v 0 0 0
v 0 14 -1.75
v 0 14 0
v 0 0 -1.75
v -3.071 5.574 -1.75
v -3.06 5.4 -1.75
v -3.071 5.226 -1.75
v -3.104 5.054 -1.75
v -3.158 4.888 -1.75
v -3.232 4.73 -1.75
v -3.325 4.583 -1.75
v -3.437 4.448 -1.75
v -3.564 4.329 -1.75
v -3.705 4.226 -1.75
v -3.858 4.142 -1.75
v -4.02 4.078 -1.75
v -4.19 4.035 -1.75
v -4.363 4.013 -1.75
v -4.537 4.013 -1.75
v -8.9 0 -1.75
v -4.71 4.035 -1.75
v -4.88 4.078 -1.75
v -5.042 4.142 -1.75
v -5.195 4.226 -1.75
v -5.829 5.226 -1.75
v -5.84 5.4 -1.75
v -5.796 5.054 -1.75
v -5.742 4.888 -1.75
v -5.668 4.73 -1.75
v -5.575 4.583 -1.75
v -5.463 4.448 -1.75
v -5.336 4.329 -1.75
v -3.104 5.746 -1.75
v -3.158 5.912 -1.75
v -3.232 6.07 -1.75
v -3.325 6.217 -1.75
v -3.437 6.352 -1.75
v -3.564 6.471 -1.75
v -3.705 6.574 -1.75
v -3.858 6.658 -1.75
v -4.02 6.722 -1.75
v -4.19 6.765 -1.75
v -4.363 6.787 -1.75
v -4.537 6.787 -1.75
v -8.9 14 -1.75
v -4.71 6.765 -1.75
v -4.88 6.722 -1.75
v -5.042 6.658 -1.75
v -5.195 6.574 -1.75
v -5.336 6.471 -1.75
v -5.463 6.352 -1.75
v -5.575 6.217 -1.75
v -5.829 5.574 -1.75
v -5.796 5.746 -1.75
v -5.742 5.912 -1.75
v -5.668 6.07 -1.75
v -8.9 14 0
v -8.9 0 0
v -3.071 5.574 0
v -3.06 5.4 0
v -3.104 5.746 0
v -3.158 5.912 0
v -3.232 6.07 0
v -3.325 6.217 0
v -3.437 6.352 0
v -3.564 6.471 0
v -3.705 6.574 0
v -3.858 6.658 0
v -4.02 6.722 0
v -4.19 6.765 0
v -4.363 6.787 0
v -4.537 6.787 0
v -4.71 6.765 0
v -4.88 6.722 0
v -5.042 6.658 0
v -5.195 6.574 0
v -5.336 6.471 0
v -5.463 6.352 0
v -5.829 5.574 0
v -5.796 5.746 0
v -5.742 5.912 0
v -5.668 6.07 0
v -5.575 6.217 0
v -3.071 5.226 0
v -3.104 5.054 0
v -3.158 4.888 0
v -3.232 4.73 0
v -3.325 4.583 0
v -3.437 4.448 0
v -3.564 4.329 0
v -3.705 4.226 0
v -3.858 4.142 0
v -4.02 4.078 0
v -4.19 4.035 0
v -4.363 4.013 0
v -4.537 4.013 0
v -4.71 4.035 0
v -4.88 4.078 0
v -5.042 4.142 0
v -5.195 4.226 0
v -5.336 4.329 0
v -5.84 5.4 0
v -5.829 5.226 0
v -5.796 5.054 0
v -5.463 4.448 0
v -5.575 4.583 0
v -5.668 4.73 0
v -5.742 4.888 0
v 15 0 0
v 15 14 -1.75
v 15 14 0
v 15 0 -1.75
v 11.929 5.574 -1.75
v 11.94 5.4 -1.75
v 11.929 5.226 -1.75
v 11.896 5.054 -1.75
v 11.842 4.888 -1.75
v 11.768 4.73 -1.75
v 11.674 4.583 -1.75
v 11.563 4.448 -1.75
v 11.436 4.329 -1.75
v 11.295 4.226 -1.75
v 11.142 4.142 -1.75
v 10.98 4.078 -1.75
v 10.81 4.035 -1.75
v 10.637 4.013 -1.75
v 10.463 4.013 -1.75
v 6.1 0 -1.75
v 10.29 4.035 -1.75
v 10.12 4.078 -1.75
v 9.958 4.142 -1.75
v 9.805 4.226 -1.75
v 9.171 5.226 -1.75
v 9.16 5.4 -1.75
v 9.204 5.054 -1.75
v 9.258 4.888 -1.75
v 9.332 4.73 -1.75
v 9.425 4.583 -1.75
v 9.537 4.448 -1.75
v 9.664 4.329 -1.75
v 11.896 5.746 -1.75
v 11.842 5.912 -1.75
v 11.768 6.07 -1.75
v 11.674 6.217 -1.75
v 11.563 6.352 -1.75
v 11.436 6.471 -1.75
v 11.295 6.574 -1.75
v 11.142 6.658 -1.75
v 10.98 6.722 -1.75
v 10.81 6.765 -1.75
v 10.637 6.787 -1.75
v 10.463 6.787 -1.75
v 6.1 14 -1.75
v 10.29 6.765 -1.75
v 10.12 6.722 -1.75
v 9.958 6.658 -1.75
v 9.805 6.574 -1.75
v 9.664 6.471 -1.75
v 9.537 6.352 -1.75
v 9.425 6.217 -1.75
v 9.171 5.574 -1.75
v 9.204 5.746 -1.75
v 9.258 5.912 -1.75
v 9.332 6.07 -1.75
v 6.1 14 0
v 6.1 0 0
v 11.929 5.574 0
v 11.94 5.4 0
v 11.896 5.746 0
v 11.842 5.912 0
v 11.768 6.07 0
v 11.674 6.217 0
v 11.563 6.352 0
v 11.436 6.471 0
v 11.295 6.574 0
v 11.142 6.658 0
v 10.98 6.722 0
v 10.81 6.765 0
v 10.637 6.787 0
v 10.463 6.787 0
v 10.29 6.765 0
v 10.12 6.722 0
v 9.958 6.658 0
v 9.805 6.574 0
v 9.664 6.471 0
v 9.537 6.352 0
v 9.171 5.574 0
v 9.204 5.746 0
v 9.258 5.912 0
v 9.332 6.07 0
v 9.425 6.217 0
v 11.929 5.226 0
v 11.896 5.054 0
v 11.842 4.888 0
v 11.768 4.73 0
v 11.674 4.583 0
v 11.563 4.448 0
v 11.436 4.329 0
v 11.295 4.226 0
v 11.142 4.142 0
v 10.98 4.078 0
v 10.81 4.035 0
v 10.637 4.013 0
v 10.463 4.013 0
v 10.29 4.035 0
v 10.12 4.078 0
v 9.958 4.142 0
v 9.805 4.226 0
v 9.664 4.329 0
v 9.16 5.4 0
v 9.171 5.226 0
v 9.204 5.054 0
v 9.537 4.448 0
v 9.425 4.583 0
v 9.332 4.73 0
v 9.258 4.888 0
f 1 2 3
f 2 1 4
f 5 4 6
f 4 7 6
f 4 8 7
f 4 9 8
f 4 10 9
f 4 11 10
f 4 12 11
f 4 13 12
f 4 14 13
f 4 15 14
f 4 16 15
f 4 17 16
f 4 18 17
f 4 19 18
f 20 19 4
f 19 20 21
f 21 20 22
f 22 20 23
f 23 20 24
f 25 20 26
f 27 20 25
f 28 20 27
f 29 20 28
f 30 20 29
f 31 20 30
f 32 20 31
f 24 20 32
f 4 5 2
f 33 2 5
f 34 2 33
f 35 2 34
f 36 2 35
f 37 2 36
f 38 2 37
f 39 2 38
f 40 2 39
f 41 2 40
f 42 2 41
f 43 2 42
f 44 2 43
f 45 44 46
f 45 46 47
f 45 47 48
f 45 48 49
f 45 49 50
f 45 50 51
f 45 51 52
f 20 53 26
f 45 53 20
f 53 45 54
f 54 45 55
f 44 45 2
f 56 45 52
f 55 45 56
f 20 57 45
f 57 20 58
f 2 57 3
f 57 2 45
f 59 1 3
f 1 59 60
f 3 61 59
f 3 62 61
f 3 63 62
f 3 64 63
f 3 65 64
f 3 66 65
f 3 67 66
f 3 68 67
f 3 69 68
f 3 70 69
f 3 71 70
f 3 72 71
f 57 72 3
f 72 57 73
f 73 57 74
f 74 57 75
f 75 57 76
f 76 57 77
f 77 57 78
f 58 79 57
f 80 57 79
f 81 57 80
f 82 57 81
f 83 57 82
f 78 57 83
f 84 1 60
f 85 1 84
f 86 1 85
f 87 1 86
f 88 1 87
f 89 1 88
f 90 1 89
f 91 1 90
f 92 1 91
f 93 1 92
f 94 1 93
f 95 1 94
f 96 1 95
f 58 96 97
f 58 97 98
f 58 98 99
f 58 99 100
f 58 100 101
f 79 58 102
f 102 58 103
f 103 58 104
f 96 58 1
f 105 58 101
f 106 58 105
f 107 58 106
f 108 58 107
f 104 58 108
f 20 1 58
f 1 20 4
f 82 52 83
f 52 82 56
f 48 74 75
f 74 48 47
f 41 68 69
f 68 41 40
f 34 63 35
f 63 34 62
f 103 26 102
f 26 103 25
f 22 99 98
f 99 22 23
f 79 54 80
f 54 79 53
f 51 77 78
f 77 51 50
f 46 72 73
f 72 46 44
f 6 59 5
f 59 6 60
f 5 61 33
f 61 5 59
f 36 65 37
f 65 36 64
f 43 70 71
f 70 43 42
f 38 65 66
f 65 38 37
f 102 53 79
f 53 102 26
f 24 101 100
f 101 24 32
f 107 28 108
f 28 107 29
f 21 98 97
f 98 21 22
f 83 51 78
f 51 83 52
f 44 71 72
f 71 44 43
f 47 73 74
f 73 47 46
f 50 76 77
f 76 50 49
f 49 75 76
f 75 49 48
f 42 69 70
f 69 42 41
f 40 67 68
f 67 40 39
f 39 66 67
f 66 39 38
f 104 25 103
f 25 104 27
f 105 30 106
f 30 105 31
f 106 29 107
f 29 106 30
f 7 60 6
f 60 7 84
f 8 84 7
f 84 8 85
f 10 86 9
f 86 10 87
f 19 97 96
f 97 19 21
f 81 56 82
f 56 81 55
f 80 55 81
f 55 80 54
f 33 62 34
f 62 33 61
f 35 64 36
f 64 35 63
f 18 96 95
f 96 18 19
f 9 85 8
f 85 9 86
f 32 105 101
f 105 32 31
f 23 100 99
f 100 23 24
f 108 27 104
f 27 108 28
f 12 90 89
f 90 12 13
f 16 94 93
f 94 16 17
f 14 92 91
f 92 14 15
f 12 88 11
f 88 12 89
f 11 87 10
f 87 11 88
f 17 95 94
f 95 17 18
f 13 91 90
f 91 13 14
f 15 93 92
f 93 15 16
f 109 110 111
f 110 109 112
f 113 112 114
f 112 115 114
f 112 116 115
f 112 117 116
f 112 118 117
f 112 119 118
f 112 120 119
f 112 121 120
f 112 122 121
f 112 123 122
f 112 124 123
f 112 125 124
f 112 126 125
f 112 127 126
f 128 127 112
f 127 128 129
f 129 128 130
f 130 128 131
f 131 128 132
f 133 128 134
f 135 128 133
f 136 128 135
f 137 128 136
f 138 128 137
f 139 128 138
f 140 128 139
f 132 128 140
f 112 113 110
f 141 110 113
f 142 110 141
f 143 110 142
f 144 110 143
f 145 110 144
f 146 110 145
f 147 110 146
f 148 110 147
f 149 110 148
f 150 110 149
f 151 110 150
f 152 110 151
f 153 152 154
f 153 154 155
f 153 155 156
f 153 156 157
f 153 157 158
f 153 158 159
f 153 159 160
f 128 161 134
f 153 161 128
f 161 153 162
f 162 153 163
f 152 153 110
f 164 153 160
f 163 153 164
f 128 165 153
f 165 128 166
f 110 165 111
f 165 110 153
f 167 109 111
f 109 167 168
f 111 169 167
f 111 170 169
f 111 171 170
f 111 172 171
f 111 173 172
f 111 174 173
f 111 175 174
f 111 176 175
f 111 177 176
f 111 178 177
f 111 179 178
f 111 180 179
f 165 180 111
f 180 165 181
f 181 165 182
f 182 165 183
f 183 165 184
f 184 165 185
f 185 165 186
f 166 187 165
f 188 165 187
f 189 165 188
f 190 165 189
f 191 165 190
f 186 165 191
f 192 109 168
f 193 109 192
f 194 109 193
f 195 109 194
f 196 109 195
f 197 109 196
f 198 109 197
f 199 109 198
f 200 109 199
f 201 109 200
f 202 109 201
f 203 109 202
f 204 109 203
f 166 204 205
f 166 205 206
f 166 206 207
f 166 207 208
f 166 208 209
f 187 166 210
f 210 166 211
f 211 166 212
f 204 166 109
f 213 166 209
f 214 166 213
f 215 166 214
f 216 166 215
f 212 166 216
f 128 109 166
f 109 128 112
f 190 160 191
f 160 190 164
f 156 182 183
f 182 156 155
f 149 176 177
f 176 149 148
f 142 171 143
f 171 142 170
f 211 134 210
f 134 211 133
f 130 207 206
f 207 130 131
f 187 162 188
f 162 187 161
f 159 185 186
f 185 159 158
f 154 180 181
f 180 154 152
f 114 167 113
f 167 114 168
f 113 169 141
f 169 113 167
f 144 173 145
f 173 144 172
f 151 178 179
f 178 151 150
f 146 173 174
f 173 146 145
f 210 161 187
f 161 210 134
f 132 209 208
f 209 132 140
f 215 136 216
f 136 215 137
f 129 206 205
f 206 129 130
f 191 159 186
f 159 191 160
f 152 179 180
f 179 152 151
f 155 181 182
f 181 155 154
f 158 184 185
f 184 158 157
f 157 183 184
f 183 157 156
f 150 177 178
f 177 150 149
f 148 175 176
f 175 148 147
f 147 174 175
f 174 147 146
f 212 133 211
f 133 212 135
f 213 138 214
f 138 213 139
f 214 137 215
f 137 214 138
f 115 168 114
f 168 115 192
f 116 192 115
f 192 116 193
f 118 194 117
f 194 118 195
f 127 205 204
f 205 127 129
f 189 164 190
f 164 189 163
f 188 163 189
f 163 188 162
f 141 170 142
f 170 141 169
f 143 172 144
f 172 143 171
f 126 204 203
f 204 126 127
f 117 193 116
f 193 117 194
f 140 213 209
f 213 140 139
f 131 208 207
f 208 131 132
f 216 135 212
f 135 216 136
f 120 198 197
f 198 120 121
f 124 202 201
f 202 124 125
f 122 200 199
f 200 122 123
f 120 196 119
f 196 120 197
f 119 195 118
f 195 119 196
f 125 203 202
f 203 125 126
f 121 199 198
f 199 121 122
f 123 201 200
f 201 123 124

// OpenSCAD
/* Washers for holding board edges
 * File: cap_strip.scad
 * Author: deh
 * Latest edit: 201701292040
*/

$fn = 50;

screw_dia = 2.78;	// Dia of threads
screw_dia_head = 4.8;	// Dia of screw (pan) head
strip_thick = 1.75;
strip_width = 8.9;
strip_1stofs= 5.4;	// 1st hole offset
strip_length = 14;

wx = strip_width/2;

module strip()
{
   difference()
   {
      union()
      {
         cube([strip_width, strip_length, strip_thick], false);
      }

      union()
      {
         translate([wx, strip_1stofs, -0.01])
           cylinder(d = screw_dia, h = strip_thick + .02, center=false);
 /*        translate([wx, strip_space + strip_1stofs, -0.01])
           cylinder(d = screw_dia, h = strip_thick + .02, center=false);
*/
      }
   }


}


module strip2()
{
   difference()
   {
      union()
      {
         translate([0,0,-strip_thick])
            cube([strip_width, strip_length, strip_thick], false);

      }

      union()
      {
         translate([wx, strip_1stofs, -0.01])
           cylinder(d = screw_dia, h = strip_thick + .02, center=false);
         translate([wx, strip_space + strip_1stofs, -0.01])
           cylinder(d = screw_dia, h = strip_thick + .02, center=false);
      }
   }


}

module strips()
{
   translate([0,0,0])
     rotate([0,180,0])strip();

   translate([15,0,0])
     rotate([0,180,0])strip();

}

strips();
